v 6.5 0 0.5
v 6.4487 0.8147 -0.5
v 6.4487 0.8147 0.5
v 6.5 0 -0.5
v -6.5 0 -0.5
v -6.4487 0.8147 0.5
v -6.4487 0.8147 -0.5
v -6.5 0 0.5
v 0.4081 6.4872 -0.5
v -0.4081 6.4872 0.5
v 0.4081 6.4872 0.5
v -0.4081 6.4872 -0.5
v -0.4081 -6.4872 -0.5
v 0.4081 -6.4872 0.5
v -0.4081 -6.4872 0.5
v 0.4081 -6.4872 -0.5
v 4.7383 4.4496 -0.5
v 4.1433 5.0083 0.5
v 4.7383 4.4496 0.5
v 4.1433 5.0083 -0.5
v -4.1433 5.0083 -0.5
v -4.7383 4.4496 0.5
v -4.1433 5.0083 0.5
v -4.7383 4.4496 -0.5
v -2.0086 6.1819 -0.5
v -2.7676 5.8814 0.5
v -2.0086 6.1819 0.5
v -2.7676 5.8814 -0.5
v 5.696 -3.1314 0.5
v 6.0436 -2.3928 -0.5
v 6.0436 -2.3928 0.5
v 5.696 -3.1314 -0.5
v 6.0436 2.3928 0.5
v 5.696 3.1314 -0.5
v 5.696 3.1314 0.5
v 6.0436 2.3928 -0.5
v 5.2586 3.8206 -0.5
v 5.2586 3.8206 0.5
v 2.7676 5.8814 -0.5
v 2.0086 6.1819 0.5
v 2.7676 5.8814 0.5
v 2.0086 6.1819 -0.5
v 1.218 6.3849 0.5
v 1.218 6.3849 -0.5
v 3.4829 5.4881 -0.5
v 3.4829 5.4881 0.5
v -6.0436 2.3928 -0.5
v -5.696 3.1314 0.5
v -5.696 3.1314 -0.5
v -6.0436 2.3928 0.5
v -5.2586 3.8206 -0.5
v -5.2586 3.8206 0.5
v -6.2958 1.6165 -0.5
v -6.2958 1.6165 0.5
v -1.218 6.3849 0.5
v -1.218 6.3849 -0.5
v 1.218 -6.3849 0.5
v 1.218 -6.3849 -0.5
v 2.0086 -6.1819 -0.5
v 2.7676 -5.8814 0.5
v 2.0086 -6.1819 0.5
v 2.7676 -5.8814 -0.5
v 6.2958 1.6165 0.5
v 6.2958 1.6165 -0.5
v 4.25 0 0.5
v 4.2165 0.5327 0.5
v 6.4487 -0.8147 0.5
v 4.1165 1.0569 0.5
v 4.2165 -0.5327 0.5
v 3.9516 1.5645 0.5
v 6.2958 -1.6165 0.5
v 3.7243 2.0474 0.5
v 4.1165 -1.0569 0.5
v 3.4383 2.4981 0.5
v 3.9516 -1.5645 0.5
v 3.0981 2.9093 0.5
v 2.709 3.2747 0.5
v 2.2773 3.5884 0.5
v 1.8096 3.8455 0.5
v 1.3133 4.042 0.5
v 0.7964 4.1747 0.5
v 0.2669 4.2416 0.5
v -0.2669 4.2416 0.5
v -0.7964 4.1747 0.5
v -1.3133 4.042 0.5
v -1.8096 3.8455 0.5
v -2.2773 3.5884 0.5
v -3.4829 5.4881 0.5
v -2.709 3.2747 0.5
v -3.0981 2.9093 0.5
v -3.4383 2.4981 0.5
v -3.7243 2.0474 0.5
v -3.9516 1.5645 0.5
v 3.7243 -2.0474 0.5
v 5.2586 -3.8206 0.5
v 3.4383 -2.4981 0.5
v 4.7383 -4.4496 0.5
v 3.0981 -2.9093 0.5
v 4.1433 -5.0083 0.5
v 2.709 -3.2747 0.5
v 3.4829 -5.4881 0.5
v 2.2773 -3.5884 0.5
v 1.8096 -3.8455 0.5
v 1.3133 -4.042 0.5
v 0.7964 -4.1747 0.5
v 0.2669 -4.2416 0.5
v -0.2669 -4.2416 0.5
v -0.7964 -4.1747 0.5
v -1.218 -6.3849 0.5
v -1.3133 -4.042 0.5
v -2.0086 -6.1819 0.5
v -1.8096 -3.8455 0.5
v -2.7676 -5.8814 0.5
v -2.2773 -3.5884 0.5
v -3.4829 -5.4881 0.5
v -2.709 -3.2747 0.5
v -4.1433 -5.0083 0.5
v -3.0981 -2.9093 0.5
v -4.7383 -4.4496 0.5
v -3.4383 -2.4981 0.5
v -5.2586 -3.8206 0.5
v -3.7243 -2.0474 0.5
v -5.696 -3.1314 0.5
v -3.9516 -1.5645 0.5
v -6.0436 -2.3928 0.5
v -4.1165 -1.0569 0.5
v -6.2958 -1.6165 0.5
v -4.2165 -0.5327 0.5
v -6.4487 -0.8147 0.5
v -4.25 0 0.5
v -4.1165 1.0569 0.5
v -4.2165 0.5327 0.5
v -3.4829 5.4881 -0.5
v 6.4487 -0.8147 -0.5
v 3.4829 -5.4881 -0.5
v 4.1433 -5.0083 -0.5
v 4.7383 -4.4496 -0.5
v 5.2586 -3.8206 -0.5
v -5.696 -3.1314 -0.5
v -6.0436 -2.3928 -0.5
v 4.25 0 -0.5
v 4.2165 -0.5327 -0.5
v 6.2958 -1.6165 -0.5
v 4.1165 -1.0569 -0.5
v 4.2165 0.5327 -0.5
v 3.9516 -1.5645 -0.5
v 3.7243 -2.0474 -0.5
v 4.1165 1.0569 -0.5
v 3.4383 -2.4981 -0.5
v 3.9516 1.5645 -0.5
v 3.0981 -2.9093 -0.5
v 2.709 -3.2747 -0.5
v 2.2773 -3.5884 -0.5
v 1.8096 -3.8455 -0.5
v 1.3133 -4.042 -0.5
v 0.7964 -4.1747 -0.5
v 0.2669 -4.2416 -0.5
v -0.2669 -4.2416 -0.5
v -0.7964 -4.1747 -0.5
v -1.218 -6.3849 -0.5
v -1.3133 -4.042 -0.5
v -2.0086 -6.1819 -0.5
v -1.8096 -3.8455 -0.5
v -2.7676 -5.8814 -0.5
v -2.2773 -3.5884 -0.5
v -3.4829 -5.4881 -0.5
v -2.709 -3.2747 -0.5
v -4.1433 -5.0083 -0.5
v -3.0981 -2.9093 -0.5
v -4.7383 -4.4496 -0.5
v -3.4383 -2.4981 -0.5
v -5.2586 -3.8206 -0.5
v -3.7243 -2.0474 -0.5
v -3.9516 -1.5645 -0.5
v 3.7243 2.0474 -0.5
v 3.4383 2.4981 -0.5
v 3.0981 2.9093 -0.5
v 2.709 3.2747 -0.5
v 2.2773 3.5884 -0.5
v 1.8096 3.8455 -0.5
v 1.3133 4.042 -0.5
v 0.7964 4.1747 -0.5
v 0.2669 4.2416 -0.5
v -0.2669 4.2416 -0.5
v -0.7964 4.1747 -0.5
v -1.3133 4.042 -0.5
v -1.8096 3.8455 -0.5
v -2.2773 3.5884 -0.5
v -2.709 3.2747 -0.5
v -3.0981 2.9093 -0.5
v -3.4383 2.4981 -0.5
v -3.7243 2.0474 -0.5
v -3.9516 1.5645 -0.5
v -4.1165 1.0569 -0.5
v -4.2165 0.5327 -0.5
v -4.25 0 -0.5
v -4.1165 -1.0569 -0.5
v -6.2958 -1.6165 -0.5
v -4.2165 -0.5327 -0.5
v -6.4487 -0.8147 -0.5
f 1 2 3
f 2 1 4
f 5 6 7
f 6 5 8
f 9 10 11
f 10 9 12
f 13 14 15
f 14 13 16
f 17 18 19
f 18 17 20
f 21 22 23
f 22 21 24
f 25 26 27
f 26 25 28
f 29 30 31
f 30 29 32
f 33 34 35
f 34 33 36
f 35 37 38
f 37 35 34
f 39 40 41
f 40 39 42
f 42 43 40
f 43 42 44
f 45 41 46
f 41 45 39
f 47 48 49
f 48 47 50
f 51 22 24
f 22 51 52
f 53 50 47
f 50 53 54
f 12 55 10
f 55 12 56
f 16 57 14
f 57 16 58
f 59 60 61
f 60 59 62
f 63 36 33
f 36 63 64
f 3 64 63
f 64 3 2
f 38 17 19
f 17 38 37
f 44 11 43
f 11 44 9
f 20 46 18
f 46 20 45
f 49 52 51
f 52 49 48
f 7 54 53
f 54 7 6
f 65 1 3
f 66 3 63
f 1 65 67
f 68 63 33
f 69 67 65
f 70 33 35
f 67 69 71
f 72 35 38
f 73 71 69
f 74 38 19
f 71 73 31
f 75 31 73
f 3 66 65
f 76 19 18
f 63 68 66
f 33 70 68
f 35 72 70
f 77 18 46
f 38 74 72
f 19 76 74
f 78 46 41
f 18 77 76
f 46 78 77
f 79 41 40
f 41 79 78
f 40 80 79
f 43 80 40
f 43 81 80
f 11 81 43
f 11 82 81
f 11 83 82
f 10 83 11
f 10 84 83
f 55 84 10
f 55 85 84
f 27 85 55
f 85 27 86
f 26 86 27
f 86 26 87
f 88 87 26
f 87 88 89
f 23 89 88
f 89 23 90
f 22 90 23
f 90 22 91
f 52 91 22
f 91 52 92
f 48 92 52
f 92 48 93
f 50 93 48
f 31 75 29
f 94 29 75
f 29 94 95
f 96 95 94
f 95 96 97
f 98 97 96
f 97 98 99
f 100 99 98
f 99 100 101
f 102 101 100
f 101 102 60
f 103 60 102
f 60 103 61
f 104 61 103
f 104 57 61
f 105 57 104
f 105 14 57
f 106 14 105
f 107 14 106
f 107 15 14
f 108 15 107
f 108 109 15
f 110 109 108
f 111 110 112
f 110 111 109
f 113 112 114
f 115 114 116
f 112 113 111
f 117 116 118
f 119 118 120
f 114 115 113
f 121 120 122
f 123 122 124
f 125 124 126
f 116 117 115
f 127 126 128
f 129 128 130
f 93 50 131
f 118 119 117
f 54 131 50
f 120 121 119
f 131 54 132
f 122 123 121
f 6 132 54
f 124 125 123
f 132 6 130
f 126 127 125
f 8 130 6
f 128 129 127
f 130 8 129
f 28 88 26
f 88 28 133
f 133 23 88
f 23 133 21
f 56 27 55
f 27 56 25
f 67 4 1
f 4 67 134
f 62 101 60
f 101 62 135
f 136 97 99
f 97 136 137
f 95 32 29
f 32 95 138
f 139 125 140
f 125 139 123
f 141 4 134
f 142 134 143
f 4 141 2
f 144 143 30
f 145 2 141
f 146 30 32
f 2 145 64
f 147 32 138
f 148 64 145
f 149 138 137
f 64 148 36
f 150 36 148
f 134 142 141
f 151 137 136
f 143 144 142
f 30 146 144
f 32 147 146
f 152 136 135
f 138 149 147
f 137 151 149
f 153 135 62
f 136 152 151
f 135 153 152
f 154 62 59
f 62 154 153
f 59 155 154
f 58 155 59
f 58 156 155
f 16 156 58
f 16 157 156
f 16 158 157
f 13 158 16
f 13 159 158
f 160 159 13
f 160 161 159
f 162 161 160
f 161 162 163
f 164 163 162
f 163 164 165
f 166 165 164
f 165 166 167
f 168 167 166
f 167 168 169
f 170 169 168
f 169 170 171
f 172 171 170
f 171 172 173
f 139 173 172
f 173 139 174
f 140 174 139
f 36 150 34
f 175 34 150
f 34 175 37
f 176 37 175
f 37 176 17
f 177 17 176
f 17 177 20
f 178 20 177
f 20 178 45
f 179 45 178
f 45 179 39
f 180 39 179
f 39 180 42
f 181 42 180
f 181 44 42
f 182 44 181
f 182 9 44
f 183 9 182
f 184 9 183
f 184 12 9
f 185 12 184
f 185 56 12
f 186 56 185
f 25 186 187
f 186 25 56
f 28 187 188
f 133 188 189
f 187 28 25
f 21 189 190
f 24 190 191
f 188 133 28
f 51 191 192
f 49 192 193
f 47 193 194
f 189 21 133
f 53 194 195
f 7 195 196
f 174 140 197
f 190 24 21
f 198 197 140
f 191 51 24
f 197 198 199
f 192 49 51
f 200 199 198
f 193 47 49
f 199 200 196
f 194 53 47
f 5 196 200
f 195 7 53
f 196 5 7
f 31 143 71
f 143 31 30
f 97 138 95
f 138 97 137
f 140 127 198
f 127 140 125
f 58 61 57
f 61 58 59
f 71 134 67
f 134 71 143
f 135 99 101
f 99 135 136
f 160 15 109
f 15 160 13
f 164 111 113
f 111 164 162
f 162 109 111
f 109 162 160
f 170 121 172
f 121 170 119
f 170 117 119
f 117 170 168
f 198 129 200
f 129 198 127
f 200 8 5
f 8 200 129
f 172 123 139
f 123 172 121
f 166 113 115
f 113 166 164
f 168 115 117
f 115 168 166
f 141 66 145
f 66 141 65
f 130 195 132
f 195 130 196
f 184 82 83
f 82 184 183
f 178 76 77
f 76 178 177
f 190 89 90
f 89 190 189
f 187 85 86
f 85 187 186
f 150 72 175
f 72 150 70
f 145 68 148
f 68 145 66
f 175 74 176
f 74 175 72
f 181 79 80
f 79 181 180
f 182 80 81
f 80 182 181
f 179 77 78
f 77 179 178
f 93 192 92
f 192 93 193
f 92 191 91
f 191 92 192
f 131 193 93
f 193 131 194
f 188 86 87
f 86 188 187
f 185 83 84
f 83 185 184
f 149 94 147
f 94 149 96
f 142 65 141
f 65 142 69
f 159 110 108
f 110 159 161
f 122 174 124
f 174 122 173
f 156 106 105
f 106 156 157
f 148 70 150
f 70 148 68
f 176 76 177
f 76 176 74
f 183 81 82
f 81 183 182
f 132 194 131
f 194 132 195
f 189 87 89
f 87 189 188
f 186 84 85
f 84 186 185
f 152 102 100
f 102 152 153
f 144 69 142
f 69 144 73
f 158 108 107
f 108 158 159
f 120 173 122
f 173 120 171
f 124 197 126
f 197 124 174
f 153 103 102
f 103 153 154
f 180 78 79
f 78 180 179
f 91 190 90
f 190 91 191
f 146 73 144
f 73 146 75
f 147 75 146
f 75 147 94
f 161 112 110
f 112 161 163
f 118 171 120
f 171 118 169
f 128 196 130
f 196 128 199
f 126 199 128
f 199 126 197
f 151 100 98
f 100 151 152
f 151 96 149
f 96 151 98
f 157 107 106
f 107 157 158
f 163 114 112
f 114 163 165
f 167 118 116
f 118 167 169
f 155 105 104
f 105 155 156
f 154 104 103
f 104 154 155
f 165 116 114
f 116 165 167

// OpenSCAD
$fn = 50;


difference() {
	union() {
		translate(v = [0, 0, -0.5000000000]) {
			cylinder(h = 1, r = 6.5000000000);
		}
	}
	union() {
		translate(v = [0, 0, -100.0000000000]) {
			cylinder(h = 200, r = 4.2500000000);
		}
	}
}
